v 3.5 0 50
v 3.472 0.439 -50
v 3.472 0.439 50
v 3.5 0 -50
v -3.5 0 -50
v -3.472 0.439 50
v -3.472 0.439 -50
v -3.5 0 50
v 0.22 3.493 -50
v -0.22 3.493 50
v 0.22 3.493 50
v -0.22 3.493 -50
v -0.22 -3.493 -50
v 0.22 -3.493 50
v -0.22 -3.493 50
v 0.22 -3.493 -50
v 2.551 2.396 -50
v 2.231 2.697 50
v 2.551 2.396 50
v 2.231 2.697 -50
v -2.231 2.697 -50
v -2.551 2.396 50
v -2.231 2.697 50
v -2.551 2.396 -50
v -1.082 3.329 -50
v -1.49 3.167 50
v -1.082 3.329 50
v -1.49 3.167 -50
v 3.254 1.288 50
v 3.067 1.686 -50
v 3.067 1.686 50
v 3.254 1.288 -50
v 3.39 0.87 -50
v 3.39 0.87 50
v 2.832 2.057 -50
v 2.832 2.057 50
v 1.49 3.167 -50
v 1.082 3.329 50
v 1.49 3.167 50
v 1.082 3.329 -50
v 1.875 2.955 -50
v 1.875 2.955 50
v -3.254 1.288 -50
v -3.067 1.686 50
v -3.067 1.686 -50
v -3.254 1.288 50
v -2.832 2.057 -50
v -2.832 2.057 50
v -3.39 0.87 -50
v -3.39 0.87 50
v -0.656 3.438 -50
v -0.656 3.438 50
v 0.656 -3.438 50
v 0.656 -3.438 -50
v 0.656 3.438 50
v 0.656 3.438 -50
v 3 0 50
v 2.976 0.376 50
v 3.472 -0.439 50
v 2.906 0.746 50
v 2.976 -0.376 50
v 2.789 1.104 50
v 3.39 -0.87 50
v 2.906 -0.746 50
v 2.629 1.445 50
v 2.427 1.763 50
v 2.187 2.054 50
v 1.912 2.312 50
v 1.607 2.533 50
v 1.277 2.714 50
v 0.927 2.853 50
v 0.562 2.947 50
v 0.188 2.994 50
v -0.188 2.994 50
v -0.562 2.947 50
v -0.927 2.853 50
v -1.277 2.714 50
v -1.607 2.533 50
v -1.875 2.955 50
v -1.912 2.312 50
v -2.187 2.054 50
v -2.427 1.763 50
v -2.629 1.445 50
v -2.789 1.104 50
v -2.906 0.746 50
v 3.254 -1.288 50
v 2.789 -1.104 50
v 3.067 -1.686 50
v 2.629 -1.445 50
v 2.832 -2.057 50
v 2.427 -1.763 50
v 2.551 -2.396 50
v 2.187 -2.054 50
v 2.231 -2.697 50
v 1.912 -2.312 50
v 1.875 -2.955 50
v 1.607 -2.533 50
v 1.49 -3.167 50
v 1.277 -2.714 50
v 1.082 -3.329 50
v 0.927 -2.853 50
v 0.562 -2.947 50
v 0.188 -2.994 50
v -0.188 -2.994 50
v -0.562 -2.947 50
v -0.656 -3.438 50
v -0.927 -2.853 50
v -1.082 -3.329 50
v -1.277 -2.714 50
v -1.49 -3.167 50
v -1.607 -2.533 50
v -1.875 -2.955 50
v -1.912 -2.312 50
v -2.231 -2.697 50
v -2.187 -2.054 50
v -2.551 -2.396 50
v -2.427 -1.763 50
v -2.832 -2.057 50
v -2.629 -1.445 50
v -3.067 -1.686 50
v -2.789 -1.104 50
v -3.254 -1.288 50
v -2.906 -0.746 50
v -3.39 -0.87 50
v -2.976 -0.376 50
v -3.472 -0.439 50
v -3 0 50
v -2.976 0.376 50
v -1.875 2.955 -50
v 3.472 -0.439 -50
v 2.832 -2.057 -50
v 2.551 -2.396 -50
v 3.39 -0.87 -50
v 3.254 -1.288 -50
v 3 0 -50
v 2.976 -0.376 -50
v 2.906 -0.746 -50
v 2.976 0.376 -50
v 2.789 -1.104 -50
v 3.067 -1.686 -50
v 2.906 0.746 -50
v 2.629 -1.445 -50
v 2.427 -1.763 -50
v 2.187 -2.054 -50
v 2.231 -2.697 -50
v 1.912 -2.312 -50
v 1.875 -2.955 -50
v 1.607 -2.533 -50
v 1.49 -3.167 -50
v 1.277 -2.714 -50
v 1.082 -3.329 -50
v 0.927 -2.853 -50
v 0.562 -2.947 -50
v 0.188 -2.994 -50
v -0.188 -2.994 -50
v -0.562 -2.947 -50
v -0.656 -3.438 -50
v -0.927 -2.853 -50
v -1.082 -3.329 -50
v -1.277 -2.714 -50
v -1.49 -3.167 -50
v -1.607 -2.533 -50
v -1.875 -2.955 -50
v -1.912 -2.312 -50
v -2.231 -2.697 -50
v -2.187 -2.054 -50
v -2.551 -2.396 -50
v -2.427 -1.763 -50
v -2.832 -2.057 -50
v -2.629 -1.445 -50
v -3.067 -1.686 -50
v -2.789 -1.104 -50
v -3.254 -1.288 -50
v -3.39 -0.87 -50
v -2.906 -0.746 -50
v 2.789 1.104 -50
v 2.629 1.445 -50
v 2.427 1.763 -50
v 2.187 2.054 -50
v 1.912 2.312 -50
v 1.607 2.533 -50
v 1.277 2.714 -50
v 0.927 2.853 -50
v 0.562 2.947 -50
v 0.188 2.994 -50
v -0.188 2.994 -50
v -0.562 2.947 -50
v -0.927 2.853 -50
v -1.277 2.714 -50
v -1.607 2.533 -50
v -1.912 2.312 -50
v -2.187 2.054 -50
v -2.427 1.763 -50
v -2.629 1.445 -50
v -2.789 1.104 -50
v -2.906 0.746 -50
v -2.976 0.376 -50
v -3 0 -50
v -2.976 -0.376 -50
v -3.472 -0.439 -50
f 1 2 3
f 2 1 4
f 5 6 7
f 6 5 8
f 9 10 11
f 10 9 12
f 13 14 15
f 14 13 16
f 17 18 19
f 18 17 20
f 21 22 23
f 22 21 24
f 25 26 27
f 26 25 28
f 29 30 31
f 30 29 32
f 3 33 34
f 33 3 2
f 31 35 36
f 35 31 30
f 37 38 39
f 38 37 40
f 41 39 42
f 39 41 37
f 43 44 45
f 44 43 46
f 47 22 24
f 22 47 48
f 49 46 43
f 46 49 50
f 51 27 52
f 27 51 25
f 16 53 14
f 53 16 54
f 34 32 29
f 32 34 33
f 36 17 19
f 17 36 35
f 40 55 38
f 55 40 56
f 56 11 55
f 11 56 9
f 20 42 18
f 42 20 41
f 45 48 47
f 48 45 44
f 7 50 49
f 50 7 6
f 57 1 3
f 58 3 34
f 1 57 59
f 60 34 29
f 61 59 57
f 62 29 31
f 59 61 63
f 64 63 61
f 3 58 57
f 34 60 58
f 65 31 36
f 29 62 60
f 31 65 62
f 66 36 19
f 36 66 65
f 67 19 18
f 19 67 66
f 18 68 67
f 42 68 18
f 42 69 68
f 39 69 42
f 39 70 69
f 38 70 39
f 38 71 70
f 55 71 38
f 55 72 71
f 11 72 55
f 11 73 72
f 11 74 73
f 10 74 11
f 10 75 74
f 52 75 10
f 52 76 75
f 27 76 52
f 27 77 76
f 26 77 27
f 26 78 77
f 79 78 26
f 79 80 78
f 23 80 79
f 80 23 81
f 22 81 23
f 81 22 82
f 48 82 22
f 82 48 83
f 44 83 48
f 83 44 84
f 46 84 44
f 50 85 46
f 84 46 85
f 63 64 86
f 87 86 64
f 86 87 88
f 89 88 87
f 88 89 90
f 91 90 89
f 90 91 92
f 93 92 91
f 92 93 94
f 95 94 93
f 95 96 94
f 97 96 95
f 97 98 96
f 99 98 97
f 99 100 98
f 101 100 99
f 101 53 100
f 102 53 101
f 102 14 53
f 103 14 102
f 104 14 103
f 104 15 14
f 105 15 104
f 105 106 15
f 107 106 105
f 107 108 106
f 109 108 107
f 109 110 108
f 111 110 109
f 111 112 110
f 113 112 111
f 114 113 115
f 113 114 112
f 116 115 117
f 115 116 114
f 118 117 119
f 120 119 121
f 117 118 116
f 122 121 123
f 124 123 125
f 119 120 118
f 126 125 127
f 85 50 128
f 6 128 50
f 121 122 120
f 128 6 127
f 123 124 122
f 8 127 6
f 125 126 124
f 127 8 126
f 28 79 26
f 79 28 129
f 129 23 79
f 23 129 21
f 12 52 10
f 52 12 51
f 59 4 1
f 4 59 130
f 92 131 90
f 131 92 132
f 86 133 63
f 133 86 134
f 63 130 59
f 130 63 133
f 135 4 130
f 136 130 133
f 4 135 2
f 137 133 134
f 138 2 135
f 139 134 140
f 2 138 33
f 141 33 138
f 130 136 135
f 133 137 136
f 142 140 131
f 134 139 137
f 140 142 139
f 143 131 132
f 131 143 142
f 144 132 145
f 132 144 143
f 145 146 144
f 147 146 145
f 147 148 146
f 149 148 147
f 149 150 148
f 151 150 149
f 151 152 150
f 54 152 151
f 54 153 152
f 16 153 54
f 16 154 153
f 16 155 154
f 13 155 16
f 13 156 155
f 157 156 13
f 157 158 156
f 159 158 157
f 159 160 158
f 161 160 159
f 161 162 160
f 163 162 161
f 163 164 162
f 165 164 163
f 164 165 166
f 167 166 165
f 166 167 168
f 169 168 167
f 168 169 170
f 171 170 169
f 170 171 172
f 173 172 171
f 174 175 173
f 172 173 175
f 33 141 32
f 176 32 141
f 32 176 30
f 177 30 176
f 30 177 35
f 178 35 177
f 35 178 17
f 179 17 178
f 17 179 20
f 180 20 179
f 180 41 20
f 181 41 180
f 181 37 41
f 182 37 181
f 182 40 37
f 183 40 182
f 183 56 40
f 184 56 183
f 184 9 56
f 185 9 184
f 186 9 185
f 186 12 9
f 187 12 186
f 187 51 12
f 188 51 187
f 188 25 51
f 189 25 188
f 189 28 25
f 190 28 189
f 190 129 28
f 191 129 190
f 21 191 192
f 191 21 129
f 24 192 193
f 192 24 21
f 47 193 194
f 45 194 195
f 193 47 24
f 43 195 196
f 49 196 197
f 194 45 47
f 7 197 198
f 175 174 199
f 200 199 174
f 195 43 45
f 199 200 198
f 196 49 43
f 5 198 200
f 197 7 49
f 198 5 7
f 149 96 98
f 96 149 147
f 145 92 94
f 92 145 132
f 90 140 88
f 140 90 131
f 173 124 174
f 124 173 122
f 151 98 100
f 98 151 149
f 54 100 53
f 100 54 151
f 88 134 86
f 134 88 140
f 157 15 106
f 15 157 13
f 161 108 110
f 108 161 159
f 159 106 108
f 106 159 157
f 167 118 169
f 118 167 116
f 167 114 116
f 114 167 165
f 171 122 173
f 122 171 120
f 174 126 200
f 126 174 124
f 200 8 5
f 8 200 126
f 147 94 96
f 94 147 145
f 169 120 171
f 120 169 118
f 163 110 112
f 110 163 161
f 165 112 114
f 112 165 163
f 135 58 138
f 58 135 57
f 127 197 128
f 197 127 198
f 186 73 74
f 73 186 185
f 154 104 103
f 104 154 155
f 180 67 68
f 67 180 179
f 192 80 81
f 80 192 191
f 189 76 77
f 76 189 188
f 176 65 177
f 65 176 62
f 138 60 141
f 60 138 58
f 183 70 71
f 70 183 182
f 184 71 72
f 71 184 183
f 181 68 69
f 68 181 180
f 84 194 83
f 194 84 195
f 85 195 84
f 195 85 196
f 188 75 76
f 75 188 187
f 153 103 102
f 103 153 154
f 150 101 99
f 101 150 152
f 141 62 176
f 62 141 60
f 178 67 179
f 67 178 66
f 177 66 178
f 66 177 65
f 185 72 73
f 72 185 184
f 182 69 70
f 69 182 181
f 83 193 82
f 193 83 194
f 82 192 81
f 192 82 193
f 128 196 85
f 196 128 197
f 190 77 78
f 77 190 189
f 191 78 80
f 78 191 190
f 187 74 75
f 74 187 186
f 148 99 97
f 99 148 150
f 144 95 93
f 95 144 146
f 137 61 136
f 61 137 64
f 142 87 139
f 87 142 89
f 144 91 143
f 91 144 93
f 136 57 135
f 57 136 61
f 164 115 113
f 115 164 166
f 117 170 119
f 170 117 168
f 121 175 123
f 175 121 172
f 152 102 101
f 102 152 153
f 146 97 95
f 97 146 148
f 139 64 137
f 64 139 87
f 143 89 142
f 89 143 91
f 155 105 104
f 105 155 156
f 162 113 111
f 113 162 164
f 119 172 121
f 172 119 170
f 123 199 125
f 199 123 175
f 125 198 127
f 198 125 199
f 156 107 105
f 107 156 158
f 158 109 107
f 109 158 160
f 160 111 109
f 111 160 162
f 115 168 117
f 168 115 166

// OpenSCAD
$fn = 50;


difference() {
	union() {
		translate(v = [0, 0, -50.0000000000]) {
			cylinder(h = 100, r = 3.5000000000);
		}
	}
	union() {
		translate(v = [0, 0, -100.0000000000]) {
			cylinder(h = 200, r = 3);
		}
	}
}
